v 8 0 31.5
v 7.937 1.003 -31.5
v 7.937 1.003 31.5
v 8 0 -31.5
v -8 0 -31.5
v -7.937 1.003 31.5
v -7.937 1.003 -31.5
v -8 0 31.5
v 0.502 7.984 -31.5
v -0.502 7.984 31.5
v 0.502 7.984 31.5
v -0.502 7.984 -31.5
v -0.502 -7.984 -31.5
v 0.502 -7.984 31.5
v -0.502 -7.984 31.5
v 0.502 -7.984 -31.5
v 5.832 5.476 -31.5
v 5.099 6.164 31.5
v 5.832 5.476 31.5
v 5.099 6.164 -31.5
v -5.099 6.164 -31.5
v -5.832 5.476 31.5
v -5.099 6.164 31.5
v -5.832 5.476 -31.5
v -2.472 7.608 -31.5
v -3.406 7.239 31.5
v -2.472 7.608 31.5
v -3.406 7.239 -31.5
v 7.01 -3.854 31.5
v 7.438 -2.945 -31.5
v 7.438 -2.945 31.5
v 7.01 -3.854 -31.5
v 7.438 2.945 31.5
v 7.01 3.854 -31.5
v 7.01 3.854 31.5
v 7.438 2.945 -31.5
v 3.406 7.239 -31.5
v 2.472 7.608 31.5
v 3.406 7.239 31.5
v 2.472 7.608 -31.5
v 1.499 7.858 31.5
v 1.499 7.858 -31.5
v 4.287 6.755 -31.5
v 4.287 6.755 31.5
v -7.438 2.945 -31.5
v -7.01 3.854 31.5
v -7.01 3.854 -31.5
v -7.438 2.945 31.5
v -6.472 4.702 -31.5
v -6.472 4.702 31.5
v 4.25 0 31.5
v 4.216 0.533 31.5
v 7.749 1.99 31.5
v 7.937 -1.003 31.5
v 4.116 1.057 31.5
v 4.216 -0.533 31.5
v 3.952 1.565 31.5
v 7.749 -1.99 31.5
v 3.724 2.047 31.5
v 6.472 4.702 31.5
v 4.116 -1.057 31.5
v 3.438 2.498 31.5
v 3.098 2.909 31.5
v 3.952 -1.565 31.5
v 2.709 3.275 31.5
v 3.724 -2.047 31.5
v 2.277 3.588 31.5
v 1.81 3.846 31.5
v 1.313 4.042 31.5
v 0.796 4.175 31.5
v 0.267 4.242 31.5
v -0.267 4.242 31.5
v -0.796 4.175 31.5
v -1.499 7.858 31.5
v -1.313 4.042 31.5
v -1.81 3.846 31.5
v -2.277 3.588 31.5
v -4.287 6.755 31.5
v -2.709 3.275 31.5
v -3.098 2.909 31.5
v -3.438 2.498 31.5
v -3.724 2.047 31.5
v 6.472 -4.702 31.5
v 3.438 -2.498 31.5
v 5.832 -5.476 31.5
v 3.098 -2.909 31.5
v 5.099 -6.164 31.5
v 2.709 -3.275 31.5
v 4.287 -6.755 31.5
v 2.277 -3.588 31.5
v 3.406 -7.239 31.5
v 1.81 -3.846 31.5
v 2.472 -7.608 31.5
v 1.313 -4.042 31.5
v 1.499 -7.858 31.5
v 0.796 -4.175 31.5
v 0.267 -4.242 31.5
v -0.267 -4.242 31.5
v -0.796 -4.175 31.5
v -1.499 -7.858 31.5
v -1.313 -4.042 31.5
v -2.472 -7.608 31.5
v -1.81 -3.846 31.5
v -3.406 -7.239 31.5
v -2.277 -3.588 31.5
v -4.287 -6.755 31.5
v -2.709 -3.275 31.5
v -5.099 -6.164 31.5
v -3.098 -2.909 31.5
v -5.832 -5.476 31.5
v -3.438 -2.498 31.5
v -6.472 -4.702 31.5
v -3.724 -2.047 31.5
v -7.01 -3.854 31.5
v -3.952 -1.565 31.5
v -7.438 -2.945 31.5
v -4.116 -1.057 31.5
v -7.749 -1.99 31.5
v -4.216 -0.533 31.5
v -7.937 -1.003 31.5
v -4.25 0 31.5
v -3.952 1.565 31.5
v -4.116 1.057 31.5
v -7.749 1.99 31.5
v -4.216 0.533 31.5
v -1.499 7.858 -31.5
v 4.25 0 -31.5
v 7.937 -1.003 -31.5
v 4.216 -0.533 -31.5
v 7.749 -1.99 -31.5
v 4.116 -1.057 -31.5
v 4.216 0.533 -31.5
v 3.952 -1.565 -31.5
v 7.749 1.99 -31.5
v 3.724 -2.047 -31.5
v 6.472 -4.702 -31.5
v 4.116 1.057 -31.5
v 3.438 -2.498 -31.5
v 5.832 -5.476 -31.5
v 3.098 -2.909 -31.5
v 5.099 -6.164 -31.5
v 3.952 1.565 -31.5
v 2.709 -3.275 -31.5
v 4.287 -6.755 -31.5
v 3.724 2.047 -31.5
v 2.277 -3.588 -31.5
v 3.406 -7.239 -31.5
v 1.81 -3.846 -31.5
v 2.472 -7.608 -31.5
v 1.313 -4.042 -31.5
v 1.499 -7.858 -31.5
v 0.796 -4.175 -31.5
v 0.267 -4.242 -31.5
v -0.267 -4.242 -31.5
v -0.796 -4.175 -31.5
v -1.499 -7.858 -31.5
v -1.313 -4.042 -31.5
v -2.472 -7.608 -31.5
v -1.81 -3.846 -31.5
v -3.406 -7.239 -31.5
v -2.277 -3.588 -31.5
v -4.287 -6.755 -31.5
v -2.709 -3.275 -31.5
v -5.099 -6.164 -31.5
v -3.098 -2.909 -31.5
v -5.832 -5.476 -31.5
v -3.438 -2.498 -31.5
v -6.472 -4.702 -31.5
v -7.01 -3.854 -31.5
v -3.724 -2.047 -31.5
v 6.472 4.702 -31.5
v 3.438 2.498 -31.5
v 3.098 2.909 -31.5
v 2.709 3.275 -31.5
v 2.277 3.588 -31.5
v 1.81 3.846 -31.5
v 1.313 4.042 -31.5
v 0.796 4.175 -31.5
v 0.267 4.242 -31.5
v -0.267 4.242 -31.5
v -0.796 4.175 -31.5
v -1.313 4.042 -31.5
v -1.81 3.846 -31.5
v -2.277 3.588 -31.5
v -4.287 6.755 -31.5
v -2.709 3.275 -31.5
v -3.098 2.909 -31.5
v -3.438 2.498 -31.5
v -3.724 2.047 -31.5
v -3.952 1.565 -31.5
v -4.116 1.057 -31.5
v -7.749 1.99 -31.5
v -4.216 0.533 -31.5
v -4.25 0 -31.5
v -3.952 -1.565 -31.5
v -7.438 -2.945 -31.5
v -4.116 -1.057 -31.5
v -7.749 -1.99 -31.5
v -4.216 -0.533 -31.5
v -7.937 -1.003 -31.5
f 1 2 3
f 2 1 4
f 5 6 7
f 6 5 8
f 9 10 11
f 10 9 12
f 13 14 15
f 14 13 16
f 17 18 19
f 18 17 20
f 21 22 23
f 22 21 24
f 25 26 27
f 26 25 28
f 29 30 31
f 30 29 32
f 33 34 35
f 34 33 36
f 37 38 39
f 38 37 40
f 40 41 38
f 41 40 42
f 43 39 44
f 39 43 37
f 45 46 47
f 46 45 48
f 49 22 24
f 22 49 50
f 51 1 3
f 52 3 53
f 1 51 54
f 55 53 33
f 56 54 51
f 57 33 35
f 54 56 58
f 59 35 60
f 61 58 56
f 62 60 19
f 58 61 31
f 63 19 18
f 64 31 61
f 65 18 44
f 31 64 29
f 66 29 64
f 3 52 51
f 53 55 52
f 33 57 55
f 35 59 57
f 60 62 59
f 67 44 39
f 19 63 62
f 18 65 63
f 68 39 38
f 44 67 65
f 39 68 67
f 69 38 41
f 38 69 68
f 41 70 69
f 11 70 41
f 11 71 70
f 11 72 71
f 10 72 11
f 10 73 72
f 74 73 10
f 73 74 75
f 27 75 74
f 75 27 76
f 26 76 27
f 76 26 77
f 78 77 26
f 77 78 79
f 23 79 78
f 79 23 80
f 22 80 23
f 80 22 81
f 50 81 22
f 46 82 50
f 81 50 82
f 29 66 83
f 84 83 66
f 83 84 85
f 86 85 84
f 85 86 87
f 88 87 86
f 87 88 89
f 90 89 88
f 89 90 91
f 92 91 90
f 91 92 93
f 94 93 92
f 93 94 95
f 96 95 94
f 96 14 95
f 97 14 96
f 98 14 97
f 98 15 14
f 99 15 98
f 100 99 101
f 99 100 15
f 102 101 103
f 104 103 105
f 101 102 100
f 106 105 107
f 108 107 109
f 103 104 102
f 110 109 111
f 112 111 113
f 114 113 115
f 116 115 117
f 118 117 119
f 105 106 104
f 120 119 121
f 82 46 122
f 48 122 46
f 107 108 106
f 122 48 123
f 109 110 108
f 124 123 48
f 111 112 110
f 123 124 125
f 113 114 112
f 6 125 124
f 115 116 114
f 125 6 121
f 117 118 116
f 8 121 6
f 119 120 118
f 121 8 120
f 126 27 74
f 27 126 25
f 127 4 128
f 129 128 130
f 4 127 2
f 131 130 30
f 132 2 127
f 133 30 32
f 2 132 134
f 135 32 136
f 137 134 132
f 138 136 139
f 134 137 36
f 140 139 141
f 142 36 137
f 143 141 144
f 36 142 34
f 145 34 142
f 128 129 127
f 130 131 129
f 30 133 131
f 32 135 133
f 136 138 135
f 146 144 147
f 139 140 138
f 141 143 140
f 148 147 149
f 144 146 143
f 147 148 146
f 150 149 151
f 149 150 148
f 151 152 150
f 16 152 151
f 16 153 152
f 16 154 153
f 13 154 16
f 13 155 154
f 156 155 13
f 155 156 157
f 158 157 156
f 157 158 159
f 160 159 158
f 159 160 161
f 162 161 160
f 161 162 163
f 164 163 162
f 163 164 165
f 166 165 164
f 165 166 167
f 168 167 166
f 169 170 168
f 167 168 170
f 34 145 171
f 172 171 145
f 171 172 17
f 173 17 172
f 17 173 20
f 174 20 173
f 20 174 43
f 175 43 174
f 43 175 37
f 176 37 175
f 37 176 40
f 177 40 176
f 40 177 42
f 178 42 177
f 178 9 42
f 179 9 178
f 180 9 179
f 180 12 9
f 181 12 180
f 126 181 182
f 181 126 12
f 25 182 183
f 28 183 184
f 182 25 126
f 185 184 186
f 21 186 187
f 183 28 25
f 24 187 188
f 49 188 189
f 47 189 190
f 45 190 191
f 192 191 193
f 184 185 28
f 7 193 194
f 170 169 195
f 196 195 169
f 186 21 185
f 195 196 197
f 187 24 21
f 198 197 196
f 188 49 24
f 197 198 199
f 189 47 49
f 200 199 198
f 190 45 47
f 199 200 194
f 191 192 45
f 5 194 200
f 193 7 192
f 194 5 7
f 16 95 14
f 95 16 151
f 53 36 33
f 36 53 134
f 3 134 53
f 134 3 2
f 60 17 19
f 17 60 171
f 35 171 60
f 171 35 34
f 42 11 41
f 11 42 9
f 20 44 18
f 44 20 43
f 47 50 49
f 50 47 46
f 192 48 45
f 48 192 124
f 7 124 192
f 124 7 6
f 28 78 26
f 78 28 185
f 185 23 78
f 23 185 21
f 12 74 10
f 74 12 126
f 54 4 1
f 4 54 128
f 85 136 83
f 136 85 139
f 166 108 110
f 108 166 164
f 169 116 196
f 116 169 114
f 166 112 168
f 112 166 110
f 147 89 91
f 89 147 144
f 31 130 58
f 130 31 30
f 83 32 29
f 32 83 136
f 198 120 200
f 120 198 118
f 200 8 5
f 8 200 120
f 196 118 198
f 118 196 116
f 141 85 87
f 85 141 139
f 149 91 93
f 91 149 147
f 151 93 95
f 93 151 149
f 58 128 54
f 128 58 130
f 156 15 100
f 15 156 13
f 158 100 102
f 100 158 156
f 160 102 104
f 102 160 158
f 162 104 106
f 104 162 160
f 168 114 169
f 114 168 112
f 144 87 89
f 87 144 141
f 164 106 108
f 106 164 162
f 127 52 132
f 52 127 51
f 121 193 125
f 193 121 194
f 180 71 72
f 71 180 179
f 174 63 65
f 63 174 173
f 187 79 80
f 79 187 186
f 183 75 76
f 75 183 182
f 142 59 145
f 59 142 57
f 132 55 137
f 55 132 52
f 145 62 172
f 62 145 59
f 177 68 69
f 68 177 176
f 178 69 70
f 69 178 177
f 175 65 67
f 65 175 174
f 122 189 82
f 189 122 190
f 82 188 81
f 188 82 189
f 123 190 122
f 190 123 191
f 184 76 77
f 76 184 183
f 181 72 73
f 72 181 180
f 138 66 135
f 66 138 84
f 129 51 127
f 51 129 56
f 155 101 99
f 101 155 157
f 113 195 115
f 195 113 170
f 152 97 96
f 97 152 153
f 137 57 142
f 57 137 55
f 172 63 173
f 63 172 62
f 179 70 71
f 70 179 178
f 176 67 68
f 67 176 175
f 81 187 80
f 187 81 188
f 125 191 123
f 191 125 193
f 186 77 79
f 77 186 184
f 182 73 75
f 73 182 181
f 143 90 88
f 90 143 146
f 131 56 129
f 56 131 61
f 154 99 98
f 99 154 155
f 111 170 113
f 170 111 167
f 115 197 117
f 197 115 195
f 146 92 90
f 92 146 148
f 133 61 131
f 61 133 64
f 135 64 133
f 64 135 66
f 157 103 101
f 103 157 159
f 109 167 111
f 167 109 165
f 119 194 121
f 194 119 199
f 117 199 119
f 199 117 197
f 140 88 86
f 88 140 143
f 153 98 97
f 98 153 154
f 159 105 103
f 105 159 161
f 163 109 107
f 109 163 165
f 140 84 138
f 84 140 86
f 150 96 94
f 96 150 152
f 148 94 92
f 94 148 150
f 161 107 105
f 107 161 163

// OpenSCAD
$fn = 50;


difference() {
	union() {
		translate(v = [0, 0, -31.5000000000]) {
			cylinder(h = 63, r = 8.0000000000);
		}
	}
	union() {
		translate(v = [0, 0, -100.0000000000]) {
			cylinder(h = 200, r = 4.2500000000);
		}
	}
}
